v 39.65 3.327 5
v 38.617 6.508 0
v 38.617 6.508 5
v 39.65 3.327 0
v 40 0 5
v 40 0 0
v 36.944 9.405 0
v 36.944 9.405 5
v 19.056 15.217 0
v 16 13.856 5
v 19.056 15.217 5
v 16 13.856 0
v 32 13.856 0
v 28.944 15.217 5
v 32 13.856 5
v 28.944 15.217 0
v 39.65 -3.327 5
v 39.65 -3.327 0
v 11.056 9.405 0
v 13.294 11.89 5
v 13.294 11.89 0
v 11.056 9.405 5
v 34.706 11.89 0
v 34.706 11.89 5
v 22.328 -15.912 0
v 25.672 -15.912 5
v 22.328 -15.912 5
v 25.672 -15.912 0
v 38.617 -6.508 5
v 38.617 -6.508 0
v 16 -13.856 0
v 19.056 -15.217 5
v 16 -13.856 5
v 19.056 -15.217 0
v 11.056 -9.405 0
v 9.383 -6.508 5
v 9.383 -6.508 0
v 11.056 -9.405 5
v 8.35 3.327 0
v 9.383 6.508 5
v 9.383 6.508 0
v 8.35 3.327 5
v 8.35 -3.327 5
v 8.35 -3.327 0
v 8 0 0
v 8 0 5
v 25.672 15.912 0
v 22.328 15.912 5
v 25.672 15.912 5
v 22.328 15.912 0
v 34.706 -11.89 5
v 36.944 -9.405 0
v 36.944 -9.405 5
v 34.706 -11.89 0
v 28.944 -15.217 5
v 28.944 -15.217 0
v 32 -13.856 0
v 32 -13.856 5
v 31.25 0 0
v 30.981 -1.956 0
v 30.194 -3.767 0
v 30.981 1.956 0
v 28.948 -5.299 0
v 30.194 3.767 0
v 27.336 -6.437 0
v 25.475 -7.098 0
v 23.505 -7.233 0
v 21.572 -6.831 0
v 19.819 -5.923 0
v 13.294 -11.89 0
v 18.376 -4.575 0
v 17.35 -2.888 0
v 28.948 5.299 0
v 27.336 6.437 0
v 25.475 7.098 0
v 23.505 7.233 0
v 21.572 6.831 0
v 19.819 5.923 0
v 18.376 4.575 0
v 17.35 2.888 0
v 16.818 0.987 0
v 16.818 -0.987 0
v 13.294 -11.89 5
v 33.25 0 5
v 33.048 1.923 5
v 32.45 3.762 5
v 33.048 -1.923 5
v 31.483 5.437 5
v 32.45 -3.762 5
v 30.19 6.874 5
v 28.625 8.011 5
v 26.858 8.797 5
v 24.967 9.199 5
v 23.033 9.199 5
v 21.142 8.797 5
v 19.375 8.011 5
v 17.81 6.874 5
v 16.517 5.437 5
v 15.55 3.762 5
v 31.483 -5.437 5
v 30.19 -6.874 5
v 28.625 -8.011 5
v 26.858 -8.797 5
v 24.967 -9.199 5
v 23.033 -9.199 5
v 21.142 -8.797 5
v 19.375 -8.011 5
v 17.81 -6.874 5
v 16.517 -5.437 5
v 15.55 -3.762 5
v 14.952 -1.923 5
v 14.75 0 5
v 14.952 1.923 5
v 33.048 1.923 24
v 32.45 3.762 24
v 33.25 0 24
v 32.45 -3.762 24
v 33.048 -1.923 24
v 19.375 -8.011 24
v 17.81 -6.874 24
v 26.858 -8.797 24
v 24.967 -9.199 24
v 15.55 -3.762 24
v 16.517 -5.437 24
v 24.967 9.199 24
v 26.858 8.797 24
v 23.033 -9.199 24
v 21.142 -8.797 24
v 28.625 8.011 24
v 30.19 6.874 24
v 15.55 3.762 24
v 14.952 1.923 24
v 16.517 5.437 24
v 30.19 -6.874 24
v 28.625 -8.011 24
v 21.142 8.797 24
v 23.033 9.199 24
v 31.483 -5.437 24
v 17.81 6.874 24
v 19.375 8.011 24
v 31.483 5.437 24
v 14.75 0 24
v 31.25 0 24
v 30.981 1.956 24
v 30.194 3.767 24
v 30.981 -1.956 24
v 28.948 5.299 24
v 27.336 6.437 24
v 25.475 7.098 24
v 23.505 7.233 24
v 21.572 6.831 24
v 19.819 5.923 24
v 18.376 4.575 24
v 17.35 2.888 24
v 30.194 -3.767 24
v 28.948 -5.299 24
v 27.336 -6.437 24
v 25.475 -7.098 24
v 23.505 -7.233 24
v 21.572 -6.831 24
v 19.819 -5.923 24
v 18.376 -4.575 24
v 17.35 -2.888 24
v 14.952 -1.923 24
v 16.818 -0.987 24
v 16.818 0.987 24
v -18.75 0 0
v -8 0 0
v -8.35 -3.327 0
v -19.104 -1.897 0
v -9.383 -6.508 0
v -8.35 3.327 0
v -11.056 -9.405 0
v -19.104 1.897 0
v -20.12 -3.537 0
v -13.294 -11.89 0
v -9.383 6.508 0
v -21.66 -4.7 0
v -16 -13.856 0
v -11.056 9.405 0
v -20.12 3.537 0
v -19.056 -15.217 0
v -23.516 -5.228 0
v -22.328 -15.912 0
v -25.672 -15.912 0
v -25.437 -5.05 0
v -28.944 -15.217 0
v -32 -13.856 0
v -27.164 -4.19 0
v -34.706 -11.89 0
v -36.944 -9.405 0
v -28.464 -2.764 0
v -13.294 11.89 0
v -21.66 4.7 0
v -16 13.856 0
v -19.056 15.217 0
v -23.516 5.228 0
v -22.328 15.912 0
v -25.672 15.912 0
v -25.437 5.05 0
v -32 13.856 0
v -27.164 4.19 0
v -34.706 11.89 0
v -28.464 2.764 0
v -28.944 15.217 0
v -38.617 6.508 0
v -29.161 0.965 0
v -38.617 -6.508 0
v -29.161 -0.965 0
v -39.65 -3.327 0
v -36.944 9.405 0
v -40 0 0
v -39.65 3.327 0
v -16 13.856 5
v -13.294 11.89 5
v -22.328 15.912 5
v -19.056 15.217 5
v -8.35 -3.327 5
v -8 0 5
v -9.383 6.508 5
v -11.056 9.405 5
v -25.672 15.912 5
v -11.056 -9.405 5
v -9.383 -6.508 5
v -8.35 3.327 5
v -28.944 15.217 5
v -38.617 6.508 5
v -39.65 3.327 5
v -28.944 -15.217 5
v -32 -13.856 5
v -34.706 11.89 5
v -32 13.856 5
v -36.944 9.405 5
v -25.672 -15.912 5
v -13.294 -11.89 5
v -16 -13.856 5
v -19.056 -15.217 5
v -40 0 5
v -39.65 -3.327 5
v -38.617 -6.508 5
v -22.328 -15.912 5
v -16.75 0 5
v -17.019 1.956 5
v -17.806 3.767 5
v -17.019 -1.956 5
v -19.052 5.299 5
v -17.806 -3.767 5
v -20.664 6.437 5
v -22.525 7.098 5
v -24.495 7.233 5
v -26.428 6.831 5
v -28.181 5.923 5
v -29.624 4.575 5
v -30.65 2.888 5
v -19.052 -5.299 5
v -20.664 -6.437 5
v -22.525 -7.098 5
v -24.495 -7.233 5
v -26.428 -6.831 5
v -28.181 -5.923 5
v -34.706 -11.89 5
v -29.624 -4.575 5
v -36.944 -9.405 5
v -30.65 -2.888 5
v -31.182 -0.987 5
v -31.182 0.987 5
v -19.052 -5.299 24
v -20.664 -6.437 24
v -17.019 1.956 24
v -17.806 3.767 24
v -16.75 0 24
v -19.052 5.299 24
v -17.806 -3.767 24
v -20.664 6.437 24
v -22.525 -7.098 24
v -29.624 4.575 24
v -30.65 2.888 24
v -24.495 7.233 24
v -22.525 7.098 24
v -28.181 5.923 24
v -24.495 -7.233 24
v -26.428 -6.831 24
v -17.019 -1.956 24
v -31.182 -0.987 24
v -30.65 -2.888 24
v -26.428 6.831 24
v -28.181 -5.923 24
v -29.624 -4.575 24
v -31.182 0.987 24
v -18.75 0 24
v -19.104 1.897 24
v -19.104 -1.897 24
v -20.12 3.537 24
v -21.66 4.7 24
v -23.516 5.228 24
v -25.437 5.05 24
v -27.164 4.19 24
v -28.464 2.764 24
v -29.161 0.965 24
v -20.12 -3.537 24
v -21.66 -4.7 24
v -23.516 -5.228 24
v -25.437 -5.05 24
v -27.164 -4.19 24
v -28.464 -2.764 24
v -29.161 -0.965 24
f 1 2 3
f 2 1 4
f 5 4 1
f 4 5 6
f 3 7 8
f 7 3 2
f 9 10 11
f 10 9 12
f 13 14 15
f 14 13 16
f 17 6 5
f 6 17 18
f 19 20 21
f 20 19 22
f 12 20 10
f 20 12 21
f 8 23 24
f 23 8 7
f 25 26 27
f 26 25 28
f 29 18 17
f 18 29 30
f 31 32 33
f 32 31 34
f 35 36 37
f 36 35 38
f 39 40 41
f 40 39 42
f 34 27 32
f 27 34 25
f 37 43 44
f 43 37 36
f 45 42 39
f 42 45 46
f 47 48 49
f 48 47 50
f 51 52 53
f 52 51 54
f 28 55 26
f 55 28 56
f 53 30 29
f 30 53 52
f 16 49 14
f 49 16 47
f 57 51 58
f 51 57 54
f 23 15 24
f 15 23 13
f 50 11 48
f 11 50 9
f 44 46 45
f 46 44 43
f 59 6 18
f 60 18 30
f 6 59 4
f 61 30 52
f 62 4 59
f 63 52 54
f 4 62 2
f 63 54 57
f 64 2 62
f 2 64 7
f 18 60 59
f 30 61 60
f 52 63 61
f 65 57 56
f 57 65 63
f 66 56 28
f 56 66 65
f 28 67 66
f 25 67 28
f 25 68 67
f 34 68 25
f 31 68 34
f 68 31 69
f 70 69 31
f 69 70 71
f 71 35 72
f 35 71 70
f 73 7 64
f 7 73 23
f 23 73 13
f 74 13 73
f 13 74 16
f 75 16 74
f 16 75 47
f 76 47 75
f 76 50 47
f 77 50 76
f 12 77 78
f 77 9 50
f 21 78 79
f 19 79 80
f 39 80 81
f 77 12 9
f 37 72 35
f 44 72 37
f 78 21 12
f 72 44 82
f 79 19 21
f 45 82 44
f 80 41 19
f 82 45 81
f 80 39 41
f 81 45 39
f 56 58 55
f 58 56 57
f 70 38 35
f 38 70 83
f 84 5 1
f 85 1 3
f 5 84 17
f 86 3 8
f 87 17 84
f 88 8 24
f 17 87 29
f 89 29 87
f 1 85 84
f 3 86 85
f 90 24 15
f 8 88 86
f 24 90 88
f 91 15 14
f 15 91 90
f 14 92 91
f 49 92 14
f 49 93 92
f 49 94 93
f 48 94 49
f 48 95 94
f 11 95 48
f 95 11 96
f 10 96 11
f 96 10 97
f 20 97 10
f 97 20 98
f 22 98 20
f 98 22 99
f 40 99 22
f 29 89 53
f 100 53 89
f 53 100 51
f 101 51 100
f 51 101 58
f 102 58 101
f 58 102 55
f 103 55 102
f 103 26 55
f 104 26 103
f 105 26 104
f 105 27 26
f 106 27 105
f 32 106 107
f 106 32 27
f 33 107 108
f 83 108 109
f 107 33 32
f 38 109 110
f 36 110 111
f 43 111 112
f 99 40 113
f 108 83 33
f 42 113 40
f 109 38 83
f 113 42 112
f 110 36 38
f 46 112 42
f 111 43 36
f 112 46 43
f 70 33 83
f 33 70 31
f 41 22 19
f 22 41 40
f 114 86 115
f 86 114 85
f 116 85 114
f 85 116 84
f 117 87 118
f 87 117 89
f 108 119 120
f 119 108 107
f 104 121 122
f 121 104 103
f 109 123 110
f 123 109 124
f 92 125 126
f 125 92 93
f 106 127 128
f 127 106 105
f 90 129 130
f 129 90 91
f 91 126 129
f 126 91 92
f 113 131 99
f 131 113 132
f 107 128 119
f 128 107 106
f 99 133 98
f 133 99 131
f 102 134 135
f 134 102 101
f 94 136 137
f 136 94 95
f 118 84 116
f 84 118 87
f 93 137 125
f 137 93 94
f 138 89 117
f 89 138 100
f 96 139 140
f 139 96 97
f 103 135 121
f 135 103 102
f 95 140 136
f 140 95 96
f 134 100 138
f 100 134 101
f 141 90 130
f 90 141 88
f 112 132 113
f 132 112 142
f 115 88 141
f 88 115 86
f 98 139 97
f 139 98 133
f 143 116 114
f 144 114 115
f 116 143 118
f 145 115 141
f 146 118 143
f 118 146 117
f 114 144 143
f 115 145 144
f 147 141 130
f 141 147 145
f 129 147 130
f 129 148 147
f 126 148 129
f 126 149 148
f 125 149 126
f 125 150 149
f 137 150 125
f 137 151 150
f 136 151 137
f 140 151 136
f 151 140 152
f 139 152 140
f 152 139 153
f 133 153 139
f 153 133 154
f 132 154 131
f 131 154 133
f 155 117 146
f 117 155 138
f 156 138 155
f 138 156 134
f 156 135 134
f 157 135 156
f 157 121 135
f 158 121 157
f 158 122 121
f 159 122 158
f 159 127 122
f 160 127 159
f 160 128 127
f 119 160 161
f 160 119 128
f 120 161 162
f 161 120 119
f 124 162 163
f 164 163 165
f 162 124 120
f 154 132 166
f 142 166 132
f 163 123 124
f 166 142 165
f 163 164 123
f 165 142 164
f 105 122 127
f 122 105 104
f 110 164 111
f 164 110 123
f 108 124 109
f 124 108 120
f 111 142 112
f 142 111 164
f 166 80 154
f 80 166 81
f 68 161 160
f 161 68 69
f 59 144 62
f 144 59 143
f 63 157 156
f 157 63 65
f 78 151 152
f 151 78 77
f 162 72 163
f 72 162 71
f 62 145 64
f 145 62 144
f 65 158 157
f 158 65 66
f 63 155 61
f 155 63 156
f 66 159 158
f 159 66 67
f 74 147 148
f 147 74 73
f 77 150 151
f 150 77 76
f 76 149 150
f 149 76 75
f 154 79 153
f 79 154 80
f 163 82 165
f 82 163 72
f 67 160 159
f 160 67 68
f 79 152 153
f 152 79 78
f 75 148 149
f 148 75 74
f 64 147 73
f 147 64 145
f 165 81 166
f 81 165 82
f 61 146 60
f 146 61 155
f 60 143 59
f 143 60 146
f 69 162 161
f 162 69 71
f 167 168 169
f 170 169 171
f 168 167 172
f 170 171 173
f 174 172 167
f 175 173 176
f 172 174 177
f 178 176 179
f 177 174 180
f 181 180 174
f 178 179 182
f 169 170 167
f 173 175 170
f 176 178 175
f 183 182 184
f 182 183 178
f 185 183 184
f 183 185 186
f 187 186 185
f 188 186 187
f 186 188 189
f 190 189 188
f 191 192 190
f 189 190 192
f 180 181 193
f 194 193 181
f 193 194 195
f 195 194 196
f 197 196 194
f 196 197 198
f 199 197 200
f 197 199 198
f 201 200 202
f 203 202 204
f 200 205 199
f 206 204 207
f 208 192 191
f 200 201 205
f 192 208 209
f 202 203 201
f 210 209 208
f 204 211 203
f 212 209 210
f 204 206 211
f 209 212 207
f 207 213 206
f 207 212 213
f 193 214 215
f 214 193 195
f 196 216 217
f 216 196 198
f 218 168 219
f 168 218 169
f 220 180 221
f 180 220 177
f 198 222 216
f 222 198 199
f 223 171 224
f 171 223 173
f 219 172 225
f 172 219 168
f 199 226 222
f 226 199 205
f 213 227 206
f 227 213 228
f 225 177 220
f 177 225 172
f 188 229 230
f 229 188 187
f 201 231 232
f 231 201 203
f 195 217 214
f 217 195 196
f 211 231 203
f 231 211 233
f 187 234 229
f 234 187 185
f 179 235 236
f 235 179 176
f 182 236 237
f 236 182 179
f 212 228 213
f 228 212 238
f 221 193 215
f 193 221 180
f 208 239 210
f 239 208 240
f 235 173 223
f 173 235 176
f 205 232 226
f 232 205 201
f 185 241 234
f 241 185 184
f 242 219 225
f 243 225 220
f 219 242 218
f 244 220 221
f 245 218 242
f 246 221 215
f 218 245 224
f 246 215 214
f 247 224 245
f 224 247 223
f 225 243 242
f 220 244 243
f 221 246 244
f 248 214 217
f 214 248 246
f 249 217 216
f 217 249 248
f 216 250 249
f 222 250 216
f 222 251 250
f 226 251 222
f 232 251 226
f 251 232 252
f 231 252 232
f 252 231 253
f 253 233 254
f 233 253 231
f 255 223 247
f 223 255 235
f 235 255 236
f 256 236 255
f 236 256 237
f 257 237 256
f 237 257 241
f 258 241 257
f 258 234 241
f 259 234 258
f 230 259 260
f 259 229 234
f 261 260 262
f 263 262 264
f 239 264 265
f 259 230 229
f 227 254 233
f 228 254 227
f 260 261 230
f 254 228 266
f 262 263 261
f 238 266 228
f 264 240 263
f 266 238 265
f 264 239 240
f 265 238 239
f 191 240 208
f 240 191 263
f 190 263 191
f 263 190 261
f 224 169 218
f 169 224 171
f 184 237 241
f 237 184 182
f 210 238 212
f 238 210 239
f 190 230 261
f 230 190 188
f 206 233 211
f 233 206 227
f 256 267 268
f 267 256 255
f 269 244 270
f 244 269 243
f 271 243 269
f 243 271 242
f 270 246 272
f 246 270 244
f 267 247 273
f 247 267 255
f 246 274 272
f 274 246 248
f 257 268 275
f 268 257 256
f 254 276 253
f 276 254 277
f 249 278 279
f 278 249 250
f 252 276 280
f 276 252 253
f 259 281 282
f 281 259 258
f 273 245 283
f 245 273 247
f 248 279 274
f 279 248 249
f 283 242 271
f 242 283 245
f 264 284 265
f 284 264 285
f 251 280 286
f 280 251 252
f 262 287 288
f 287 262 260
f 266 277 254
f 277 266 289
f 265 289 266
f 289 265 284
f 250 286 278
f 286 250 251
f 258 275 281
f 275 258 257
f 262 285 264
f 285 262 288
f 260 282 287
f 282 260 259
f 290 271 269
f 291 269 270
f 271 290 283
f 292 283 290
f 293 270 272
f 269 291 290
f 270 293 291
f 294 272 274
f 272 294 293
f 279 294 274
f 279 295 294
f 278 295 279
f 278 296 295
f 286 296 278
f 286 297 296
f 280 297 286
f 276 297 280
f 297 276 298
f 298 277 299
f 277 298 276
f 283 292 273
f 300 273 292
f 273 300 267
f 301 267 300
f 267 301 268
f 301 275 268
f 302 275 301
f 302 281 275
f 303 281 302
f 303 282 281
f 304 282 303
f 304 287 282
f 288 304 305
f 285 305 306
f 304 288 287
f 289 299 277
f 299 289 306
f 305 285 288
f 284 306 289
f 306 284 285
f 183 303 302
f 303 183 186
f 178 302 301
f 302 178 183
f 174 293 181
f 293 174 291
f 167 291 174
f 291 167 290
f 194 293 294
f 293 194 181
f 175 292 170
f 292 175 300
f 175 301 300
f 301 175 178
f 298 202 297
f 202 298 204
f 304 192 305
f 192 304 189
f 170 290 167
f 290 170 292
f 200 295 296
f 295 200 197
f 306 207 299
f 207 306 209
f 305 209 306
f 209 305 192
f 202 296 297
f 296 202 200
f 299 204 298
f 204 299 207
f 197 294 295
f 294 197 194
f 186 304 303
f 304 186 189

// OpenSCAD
epsilon = 0.01;

module cylinder_with_base(
    base_radius,
    base_thickness,
    outer_radius,
    inner_radius,
    wall_height
){
    difference() {
        union() {
            cylinder(base_thickness, base_radius, base_radius);
            translate([0, 0, base_thickness]) {
                cylinder(wall_height, outer_radius, outer_radius);
            }
        }
        translate([0, 0, -epsilon]) {
            cylinder(
                base_thickness + wall_height + 2 * epsilon,
                inner_radius,
                inner_radius
            );
        }
    }
}

base_radius = 16;
base_thickness = 5;
outer_radius = 9.25;
wall_height = 19;
// Each wall, not combined
wall_thickness = 2;

translate([1.5 * base_radius, 0, 0]) {
    cylinder_with_base(
        base_radius = base_radius,
        outer_radius = outer_radius,
        inner_radius = outer_radius - wall_thickness,
        base_thickness = base_thickness,
        wall_height = wall_height
    );
}

translate([-1.5 * base_radius, 0, 0]) {
    cylinder_with_base(
        base_radius = base_radius,
        outer_radius = outer_radius - wall_thickness,
        inner_radius = outer_radius - 2 * wall_thickness,
        base_thickness = base_thickness,
        wall_height = wall_height
    );
}
